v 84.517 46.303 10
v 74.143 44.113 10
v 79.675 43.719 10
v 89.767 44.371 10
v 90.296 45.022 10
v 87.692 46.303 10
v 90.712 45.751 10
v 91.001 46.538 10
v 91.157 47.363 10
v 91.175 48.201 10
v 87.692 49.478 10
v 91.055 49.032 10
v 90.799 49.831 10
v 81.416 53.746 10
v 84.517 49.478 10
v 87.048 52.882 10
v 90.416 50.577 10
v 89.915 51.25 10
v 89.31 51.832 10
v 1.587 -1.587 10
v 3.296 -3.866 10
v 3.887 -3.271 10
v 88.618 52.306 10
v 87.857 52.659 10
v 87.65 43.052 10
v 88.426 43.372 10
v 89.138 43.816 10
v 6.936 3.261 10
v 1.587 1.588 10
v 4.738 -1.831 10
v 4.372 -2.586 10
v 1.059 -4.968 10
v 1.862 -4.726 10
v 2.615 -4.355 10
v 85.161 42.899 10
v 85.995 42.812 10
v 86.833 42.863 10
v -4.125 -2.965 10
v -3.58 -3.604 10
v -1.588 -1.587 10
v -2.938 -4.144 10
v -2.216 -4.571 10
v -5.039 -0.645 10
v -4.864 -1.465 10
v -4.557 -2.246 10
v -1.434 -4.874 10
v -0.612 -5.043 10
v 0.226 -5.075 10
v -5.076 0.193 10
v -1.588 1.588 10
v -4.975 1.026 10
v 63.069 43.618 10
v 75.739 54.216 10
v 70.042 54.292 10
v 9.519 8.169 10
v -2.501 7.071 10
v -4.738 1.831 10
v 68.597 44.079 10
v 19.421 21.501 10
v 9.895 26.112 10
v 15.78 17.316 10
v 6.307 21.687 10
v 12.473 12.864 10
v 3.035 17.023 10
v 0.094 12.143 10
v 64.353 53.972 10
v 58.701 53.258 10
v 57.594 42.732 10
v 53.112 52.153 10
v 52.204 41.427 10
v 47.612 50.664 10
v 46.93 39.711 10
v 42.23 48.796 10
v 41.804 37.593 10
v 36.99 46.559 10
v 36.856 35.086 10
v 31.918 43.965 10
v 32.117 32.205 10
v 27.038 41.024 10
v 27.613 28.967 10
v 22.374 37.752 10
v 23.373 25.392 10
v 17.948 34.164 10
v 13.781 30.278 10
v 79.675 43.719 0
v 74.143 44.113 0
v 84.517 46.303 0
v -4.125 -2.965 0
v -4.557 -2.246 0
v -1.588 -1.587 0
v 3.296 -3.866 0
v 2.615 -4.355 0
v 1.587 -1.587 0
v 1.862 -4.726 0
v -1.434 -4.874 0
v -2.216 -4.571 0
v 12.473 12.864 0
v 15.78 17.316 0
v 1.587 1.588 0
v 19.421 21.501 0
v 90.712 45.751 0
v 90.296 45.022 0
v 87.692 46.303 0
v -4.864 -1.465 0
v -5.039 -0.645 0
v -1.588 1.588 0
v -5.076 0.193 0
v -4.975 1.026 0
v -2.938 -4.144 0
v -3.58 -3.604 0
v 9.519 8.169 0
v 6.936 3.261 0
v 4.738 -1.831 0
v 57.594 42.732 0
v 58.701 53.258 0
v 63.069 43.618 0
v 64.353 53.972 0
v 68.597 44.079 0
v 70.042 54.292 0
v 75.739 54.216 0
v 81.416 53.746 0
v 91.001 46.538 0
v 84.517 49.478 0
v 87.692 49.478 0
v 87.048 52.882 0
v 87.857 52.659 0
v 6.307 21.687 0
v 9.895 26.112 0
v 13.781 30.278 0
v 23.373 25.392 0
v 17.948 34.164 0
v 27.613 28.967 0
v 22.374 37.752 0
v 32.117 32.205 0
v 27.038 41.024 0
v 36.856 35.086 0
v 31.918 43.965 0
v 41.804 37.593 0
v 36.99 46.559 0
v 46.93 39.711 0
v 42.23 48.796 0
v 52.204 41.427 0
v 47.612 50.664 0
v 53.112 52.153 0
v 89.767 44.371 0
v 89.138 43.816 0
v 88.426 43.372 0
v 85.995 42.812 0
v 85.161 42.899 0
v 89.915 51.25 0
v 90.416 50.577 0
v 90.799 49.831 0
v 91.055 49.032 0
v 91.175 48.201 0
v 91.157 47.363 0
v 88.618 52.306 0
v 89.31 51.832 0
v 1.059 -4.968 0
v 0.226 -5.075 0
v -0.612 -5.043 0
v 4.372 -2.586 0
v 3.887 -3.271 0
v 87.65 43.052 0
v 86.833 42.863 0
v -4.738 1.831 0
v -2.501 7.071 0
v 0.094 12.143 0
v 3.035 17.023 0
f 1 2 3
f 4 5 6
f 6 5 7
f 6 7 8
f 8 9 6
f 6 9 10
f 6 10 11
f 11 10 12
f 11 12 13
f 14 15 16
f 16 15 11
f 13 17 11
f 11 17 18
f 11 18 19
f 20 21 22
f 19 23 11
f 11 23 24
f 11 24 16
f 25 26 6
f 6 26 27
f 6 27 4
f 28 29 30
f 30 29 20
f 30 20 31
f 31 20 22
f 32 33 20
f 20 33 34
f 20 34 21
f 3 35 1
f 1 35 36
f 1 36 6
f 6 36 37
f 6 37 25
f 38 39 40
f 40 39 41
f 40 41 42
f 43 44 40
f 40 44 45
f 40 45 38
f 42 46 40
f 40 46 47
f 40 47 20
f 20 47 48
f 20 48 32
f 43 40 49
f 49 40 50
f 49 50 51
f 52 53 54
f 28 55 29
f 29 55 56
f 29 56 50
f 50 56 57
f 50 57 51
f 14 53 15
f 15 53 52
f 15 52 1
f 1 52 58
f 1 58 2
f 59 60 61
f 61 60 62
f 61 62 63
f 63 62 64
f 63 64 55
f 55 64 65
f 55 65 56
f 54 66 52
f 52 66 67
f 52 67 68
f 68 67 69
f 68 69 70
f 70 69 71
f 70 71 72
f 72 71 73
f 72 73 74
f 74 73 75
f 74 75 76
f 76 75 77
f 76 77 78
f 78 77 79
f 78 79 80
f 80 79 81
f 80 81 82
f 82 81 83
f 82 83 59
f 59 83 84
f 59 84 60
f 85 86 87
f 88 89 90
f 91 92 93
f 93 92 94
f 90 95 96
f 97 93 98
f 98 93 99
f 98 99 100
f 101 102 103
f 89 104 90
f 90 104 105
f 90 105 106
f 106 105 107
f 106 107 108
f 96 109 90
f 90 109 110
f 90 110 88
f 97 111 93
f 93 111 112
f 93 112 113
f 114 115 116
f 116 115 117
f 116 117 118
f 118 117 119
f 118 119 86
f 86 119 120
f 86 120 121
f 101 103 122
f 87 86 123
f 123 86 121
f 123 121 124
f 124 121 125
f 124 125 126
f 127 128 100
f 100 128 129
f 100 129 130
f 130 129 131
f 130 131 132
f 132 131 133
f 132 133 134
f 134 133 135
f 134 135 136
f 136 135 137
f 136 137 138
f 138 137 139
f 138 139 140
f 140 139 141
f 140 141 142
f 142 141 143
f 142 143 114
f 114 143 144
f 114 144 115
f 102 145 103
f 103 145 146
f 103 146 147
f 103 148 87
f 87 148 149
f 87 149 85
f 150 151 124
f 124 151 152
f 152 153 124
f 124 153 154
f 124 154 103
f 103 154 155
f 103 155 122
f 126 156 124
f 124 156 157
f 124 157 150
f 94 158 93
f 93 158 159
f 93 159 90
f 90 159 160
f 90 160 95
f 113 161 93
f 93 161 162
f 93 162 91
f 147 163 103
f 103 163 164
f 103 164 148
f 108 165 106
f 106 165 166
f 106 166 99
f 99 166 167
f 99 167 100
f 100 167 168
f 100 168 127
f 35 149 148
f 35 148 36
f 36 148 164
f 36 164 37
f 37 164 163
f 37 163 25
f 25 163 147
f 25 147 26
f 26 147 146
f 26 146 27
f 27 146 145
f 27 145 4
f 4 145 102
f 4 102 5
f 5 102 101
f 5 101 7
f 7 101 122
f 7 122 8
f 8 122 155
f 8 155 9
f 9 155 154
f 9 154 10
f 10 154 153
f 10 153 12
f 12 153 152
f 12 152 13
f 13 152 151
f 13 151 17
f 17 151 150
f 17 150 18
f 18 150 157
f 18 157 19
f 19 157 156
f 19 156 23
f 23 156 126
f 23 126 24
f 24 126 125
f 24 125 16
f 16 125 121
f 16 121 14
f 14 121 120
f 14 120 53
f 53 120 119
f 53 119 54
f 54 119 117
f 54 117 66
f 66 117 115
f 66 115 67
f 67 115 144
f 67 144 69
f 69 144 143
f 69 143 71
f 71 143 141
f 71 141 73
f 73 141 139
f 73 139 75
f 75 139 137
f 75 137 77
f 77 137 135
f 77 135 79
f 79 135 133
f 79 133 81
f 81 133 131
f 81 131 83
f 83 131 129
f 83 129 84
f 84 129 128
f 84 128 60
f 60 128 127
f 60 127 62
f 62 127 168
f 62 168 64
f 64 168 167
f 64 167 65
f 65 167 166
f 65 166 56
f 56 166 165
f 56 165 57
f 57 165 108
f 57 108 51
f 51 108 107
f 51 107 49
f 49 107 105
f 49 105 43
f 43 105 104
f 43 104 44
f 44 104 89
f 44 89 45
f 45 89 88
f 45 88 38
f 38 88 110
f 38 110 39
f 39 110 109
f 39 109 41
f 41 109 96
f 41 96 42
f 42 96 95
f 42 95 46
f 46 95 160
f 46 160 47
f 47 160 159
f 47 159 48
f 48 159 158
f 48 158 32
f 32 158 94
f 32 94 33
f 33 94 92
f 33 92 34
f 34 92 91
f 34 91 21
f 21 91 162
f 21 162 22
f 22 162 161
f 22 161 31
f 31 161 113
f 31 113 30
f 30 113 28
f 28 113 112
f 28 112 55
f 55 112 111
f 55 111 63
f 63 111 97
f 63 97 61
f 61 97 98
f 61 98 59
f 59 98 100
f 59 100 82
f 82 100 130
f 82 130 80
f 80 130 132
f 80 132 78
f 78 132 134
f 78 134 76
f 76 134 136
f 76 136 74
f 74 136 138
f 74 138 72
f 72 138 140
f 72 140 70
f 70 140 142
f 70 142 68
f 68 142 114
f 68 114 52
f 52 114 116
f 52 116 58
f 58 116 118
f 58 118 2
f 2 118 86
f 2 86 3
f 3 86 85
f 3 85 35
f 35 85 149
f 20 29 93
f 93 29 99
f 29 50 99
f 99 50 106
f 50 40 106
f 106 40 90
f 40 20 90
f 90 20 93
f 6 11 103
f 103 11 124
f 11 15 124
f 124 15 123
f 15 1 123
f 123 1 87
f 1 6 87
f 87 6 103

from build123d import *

# Parameters (mm, degrees)
SKETCH1_W           = 3.175
SKETCH1_H           = 3.175
BOSS_EXTRUDE1_DEPTH = 10


with BuildPart() as part:
    # Sketch1 → Boss-Extrude1 (new body)
    with BuildSketch(Plane.XY):
        with BuildLine():
            ThreePointArc((87.048054742, 52.882382784), (31.917584067, 43.964642964), (-4.738476051, 1.831186697))
            ThreePointArc((-4.738476051, 1.831186697), (-1.831186697, -4.738476051), (4.738476051, -1.831186697))
            ThreePointArc((4.738476051, -1.831186697), (36.856053246, 35.085615868), (85.160675784, 42.899226937))
            ThreePointArc((85.160675784, 42.899226937), (91.095943187, 46.947115382), (87.048054742, 52.882382784))
        make_face()
        Rectangle(SKETCH1_W, SKETCH1_H, mode=Mode.SUBTRACT)
        with Locations((86.104365263, 47.890804861)):
            Rectangle(SKETCH1_W, SKETCH1_H, mode=Mode.SUBTRACT)
    extrude(amount=BOSS_EXTRUDE1_DEPTH)


solid = part.part
